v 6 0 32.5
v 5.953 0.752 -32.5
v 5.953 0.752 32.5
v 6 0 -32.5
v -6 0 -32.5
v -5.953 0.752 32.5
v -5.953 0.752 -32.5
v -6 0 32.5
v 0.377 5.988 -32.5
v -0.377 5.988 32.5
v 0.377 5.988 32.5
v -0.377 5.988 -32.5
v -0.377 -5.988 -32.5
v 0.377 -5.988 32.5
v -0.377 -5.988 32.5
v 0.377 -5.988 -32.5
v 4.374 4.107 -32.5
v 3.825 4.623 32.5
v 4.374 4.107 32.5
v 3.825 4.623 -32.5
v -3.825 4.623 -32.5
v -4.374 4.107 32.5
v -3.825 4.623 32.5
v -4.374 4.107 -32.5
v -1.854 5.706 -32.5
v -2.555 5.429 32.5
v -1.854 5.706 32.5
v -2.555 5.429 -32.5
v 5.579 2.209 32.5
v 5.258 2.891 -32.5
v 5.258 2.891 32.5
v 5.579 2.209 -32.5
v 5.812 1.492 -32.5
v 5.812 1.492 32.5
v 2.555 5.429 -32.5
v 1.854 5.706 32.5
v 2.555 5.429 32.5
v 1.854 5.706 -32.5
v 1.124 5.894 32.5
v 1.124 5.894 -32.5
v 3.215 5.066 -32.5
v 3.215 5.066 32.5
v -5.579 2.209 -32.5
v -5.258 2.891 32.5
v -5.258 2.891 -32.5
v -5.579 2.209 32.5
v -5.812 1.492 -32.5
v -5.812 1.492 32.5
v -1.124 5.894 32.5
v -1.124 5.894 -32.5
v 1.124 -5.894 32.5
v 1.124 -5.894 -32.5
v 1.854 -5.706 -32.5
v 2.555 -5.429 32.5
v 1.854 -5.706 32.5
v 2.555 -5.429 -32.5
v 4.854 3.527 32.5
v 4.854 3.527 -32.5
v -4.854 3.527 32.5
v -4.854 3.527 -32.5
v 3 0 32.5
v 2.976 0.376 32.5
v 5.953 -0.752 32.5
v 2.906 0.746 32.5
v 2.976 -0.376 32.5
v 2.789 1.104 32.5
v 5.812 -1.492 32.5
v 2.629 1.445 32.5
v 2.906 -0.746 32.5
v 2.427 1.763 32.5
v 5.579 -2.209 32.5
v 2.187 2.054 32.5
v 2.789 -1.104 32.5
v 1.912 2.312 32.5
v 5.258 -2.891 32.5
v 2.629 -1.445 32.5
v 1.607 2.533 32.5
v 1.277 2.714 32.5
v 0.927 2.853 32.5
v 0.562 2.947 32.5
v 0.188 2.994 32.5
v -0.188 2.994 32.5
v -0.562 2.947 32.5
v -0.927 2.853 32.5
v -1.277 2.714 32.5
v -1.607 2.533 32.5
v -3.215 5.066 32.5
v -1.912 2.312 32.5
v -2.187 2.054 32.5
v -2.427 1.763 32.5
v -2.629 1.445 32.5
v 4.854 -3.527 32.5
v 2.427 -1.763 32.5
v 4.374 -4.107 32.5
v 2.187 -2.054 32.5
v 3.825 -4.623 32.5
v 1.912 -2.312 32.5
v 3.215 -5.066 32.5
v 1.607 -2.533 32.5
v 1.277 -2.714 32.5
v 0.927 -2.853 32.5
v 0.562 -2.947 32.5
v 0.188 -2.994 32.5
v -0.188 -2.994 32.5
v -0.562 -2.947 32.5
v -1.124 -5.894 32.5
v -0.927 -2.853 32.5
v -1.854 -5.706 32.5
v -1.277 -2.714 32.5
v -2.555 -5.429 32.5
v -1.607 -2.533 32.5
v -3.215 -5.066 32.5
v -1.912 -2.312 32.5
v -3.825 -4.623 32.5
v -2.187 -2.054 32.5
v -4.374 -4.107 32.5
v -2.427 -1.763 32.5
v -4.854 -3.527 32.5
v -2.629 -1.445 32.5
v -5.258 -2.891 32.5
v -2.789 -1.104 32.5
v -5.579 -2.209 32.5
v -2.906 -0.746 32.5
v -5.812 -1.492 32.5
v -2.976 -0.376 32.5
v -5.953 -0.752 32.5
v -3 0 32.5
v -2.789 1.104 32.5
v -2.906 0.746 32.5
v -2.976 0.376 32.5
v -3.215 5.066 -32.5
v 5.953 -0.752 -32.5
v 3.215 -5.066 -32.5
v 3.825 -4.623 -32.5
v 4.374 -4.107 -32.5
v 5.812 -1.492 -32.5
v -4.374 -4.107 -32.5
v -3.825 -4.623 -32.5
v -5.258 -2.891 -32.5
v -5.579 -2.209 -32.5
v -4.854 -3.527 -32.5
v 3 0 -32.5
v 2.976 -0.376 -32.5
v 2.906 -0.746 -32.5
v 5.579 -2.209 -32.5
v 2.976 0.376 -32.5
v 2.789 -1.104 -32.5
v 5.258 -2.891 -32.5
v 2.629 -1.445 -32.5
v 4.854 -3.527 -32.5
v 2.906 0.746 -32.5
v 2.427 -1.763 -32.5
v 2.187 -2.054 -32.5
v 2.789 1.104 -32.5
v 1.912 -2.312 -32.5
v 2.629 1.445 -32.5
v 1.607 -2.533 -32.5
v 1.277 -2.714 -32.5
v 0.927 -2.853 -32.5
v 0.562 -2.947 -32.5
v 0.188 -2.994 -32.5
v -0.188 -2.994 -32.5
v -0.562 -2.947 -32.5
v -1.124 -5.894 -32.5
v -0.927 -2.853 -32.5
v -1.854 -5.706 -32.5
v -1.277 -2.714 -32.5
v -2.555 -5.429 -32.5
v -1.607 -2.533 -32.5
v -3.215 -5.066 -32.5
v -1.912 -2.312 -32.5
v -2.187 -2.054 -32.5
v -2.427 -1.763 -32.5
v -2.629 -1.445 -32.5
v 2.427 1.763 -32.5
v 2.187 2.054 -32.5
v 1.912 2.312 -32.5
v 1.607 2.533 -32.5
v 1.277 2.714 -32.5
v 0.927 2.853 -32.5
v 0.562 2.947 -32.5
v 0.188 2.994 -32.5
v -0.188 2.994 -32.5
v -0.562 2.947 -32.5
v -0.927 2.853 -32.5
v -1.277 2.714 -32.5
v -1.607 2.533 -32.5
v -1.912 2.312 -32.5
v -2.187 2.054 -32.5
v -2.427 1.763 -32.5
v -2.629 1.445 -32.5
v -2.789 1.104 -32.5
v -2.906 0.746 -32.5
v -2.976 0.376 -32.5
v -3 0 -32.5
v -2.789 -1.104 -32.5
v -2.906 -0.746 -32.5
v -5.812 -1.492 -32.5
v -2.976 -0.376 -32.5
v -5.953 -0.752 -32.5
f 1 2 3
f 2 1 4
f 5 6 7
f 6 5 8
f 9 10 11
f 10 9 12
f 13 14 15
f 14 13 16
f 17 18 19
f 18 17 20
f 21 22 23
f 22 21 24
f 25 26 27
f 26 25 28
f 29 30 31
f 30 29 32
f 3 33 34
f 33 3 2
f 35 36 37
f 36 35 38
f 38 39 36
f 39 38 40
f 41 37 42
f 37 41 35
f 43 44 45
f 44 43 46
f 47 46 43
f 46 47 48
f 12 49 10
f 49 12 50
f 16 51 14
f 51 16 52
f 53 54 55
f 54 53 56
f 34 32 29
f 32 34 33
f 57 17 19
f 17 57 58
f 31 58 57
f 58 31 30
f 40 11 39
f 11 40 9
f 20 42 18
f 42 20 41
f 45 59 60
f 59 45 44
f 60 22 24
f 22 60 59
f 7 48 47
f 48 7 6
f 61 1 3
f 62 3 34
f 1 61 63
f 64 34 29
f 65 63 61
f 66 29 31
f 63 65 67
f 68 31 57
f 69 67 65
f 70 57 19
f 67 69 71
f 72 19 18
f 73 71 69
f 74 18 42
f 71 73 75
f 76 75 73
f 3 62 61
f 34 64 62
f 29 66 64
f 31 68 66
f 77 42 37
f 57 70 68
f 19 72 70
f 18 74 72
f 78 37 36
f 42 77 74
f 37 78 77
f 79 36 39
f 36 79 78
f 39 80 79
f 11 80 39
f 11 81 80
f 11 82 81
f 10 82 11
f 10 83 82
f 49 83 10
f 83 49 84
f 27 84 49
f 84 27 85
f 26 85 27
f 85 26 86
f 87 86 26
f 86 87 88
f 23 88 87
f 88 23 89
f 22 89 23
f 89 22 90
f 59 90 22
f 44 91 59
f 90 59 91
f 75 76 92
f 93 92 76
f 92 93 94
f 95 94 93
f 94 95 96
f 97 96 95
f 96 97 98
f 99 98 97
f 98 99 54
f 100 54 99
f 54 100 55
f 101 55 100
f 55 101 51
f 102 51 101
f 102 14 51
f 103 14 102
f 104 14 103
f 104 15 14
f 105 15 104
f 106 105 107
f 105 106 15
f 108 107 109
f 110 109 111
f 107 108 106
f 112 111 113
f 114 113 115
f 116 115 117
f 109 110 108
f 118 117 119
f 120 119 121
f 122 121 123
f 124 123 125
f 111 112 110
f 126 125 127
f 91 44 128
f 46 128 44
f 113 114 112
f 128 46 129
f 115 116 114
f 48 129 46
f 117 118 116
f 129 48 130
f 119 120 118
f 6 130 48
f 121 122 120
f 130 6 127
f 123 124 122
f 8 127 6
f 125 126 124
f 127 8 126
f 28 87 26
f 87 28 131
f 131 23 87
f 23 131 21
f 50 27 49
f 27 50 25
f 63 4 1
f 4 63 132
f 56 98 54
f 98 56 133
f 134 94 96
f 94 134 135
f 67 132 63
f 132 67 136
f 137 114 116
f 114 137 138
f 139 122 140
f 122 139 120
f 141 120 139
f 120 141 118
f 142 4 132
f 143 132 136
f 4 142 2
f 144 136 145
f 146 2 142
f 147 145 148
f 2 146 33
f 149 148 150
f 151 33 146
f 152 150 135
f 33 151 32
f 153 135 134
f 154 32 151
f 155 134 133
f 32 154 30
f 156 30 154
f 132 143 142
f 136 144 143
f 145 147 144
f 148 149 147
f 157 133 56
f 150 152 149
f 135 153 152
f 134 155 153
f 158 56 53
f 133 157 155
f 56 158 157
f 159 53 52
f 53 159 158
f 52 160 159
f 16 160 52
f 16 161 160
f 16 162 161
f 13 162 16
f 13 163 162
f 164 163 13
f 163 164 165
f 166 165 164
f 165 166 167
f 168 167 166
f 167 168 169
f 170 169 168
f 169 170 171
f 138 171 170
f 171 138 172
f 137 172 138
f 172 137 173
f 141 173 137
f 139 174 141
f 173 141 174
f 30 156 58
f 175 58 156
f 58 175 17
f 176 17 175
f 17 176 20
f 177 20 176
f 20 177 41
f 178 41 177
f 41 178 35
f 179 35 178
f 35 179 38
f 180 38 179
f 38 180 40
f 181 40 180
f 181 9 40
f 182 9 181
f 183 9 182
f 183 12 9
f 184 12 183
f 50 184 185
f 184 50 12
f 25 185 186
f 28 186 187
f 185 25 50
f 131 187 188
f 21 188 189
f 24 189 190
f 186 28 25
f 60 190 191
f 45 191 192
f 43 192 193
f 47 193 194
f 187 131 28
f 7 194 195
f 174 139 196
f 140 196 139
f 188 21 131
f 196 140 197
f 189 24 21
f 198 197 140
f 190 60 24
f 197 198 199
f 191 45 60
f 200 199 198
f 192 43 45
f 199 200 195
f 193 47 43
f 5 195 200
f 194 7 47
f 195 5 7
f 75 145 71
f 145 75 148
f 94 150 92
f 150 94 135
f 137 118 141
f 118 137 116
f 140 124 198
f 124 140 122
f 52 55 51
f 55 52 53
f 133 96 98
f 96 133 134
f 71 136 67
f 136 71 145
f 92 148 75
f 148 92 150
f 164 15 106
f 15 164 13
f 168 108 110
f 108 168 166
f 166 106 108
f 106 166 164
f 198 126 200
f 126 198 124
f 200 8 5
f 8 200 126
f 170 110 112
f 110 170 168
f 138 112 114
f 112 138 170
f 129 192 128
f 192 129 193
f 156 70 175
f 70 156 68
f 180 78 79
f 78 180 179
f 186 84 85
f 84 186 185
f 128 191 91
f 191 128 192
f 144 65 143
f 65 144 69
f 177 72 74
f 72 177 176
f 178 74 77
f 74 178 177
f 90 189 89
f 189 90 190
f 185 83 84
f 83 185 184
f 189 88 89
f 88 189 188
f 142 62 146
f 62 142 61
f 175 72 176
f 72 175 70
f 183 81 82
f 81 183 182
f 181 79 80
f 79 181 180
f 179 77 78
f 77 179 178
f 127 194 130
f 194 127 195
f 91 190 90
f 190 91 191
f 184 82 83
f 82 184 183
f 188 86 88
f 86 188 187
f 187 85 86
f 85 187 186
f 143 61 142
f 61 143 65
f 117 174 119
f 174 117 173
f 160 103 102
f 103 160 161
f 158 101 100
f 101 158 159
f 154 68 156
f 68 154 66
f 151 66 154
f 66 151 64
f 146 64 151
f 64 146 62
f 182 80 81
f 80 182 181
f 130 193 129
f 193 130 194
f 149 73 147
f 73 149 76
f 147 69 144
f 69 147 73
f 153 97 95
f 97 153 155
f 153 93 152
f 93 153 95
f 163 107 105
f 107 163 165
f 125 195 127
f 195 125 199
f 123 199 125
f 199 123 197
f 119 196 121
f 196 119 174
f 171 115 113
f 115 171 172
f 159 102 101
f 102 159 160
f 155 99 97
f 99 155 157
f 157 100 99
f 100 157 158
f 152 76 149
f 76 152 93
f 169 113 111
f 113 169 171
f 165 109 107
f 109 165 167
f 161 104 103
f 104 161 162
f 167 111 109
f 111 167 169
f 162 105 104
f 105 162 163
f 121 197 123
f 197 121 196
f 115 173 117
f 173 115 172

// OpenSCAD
$fn = 50;


difference() {
	union() {
		translate(v = [0, 0, -32.5000000000]) {
			cylinder(h = 65, r = 6.0000000000);
		}
	}
	union() {
		translate(v = [0, 0, -100.0000000000]) {
			cylinder(h = 200, r = 3);
		}
	}
}
